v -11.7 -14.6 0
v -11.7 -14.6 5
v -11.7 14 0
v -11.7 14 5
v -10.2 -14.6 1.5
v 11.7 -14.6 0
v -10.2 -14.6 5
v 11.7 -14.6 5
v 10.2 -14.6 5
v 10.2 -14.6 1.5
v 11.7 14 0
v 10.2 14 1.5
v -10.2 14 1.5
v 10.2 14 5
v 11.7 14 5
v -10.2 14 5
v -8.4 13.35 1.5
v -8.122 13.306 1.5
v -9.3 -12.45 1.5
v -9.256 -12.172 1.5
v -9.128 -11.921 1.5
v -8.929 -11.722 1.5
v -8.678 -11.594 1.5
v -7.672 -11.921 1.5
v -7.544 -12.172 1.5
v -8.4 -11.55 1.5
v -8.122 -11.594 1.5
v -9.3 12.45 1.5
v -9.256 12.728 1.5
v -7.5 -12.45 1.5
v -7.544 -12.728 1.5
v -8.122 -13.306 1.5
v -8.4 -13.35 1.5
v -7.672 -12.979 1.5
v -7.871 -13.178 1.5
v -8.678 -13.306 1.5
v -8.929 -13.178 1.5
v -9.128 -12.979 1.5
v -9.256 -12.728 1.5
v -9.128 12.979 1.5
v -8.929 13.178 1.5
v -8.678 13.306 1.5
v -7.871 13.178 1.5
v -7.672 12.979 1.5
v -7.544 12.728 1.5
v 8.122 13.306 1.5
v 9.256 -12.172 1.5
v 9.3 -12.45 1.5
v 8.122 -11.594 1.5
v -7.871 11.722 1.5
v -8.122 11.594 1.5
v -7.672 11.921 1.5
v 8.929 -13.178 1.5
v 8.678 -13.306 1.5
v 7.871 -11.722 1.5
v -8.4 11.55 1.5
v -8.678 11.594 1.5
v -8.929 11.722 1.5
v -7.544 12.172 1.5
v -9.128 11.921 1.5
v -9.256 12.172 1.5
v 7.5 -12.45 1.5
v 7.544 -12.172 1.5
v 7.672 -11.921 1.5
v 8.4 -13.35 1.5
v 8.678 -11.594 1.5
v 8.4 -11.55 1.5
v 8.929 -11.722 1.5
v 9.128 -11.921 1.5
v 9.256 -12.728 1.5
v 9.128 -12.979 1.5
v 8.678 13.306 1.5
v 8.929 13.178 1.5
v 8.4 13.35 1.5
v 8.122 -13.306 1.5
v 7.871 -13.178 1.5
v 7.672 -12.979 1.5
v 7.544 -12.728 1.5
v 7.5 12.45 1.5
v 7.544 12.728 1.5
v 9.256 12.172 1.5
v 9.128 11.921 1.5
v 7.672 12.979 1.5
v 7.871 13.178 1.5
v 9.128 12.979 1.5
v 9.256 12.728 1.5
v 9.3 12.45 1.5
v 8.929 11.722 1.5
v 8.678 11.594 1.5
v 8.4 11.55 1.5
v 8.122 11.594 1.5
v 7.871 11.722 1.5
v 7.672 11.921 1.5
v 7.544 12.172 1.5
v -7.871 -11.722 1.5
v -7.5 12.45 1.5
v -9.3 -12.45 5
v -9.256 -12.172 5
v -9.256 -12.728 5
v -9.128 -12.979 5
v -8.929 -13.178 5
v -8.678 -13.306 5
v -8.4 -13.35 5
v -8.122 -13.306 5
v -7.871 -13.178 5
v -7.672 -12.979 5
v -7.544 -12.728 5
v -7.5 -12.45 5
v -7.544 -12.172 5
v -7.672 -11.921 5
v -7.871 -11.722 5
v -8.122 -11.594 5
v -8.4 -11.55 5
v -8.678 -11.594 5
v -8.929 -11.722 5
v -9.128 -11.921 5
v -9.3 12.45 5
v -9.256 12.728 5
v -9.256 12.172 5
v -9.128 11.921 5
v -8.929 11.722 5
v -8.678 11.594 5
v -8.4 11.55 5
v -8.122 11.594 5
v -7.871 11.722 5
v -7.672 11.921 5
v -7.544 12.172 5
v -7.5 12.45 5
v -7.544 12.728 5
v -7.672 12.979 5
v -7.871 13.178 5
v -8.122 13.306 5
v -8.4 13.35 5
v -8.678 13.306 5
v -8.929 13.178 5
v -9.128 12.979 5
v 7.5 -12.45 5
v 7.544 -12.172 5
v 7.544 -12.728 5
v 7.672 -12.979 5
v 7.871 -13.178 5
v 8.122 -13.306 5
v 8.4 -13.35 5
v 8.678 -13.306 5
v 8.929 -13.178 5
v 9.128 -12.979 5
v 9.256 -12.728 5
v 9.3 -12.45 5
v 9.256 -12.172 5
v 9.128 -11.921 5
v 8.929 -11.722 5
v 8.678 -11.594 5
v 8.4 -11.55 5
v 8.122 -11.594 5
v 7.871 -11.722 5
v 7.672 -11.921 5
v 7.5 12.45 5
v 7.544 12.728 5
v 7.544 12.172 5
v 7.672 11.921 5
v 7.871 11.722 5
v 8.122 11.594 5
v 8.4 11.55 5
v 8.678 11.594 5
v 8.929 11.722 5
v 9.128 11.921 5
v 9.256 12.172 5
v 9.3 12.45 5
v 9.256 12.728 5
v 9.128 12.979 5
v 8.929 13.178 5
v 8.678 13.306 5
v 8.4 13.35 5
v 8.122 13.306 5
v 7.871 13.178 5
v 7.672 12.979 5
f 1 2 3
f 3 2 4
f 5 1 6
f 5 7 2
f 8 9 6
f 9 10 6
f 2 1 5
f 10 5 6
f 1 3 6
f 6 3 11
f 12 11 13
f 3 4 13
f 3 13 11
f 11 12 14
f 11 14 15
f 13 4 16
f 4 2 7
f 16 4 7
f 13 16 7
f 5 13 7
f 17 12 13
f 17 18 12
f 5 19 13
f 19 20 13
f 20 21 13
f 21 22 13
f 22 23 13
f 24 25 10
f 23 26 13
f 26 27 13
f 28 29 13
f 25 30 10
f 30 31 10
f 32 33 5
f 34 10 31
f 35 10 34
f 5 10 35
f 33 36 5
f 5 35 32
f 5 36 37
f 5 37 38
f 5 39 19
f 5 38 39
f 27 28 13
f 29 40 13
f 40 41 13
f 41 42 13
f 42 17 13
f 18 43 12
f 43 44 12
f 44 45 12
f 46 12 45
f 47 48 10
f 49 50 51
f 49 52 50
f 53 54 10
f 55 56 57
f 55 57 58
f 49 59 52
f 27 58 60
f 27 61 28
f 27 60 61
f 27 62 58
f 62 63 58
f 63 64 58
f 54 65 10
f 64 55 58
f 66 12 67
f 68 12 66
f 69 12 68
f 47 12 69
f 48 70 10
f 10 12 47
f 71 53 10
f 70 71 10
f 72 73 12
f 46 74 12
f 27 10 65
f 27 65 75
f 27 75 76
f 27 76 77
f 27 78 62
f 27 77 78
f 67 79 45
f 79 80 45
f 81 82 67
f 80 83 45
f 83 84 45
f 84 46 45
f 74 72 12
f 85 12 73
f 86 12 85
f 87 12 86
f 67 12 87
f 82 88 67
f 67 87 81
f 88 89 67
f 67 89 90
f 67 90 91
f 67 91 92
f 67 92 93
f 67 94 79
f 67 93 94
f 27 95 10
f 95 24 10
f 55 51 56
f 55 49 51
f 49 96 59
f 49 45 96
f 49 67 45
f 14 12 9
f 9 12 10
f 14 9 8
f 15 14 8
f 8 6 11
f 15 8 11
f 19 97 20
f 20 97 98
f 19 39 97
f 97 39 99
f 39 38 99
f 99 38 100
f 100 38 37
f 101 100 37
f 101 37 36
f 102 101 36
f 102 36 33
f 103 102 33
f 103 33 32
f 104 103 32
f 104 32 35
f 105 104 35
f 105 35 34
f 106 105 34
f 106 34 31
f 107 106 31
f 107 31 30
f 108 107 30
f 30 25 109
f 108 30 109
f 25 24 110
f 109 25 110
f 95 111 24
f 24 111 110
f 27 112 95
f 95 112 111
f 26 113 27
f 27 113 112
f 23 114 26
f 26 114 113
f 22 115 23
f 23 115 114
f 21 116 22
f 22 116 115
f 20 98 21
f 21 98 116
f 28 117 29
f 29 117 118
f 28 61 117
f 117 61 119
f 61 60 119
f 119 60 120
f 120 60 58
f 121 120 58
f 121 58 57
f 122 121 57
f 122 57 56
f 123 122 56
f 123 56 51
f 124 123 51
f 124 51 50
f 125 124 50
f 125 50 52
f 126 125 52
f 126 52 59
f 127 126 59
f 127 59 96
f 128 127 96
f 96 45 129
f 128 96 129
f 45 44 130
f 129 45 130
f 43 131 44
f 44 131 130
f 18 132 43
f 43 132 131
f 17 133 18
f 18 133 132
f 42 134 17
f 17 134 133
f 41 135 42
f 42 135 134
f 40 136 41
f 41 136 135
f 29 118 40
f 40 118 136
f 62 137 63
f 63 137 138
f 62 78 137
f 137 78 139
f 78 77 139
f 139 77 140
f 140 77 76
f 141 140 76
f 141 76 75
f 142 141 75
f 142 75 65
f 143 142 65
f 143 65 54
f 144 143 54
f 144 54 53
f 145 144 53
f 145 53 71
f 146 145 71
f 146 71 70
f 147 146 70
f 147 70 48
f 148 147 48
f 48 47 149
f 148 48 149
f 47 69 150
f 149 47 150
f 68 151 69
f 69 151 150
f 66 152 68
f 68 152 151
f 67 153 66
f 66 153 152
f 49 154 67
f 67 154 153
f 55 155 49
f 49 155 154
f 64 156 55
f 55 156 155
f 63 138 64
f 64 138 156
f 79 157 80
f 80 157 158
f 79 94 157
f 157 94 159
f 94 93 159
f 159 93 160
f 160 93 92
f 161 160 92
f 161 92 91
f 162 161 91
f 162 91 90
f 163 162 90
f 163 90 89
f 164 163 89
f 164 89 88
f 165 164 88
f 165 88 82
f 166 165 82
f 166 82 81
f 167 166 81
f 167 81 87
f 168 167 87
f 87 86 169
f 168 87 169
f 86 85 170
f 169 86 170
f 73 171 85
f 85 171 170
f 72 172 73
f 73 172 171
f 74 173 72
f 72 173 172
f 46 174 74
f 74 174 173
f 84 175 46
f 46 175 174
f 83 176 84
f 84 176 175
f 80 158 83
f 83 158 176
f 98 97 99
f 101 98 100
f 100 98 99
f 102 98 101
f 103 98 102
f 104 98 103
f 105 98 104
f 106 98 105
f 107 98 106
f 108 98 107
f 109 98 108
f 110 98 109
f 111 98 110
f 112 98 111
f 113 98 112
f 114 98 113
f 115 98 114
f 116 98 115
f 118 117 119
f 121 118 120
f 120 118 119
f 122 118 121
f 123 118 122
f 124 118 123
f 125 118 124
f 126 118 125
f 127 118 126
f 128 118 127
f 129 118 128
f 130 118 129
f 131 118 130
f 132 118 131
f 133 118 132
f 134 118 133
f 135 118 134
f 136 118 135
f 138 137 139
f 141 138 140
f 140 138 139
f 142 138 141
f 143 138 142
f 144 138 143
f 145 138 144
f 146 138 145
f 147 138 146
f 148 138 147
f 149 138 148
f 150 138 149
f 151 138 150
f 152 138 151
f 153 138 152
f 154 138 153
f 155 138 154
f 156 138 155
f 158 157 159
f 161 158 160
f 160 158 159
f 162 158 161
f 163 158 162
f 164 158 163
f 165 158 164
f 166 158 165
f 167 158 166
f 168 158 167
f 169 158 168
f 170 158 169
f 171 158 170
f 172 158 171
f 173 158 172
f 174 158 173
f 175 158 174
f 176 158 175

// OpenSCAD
// Base with inset for camera PCB
w = 20.4;		// Camera PCB Width
h = 28.6;		// Camera PCB Height
d = 5;			// Camera PCB Depth
fenceW = 3;	// 2 x width of the fence around inset PCB

translate([-(w + fenceW)/2, -(h+fenceW)/2+1.2, 0])
difference() {
	cube(size=[w+fenceW, h, d]);
	translate([fenceW/2, fenceW/2-1.5, fenceW/2]) cube(size=[w, h, d]);
}

// Posts aligned with screw holes
postRad = 0.9;	// Post radius
postSepX = 16.8;	// X distance between posts
postSepY = 24.9;	// Y distance between posts

translate([postSepX/2,postSepY/2,0]) cylinder(h=d,r=postRad,$fn=20);		//Post 1
translate([-postSepX/2,postSepY/2,0]) cylinder(h=d,r=postRad,$fn=20);		//Post 2
translate([postSepX/2,-postSepY/2,0]) cylinder(h=d,r=postRad,$fn=20);		//Post 3
translate([-postSepX/2,-postSepY/2,0]) cylinder(h=d,r=postRad,$fn=20);	//Post 4
